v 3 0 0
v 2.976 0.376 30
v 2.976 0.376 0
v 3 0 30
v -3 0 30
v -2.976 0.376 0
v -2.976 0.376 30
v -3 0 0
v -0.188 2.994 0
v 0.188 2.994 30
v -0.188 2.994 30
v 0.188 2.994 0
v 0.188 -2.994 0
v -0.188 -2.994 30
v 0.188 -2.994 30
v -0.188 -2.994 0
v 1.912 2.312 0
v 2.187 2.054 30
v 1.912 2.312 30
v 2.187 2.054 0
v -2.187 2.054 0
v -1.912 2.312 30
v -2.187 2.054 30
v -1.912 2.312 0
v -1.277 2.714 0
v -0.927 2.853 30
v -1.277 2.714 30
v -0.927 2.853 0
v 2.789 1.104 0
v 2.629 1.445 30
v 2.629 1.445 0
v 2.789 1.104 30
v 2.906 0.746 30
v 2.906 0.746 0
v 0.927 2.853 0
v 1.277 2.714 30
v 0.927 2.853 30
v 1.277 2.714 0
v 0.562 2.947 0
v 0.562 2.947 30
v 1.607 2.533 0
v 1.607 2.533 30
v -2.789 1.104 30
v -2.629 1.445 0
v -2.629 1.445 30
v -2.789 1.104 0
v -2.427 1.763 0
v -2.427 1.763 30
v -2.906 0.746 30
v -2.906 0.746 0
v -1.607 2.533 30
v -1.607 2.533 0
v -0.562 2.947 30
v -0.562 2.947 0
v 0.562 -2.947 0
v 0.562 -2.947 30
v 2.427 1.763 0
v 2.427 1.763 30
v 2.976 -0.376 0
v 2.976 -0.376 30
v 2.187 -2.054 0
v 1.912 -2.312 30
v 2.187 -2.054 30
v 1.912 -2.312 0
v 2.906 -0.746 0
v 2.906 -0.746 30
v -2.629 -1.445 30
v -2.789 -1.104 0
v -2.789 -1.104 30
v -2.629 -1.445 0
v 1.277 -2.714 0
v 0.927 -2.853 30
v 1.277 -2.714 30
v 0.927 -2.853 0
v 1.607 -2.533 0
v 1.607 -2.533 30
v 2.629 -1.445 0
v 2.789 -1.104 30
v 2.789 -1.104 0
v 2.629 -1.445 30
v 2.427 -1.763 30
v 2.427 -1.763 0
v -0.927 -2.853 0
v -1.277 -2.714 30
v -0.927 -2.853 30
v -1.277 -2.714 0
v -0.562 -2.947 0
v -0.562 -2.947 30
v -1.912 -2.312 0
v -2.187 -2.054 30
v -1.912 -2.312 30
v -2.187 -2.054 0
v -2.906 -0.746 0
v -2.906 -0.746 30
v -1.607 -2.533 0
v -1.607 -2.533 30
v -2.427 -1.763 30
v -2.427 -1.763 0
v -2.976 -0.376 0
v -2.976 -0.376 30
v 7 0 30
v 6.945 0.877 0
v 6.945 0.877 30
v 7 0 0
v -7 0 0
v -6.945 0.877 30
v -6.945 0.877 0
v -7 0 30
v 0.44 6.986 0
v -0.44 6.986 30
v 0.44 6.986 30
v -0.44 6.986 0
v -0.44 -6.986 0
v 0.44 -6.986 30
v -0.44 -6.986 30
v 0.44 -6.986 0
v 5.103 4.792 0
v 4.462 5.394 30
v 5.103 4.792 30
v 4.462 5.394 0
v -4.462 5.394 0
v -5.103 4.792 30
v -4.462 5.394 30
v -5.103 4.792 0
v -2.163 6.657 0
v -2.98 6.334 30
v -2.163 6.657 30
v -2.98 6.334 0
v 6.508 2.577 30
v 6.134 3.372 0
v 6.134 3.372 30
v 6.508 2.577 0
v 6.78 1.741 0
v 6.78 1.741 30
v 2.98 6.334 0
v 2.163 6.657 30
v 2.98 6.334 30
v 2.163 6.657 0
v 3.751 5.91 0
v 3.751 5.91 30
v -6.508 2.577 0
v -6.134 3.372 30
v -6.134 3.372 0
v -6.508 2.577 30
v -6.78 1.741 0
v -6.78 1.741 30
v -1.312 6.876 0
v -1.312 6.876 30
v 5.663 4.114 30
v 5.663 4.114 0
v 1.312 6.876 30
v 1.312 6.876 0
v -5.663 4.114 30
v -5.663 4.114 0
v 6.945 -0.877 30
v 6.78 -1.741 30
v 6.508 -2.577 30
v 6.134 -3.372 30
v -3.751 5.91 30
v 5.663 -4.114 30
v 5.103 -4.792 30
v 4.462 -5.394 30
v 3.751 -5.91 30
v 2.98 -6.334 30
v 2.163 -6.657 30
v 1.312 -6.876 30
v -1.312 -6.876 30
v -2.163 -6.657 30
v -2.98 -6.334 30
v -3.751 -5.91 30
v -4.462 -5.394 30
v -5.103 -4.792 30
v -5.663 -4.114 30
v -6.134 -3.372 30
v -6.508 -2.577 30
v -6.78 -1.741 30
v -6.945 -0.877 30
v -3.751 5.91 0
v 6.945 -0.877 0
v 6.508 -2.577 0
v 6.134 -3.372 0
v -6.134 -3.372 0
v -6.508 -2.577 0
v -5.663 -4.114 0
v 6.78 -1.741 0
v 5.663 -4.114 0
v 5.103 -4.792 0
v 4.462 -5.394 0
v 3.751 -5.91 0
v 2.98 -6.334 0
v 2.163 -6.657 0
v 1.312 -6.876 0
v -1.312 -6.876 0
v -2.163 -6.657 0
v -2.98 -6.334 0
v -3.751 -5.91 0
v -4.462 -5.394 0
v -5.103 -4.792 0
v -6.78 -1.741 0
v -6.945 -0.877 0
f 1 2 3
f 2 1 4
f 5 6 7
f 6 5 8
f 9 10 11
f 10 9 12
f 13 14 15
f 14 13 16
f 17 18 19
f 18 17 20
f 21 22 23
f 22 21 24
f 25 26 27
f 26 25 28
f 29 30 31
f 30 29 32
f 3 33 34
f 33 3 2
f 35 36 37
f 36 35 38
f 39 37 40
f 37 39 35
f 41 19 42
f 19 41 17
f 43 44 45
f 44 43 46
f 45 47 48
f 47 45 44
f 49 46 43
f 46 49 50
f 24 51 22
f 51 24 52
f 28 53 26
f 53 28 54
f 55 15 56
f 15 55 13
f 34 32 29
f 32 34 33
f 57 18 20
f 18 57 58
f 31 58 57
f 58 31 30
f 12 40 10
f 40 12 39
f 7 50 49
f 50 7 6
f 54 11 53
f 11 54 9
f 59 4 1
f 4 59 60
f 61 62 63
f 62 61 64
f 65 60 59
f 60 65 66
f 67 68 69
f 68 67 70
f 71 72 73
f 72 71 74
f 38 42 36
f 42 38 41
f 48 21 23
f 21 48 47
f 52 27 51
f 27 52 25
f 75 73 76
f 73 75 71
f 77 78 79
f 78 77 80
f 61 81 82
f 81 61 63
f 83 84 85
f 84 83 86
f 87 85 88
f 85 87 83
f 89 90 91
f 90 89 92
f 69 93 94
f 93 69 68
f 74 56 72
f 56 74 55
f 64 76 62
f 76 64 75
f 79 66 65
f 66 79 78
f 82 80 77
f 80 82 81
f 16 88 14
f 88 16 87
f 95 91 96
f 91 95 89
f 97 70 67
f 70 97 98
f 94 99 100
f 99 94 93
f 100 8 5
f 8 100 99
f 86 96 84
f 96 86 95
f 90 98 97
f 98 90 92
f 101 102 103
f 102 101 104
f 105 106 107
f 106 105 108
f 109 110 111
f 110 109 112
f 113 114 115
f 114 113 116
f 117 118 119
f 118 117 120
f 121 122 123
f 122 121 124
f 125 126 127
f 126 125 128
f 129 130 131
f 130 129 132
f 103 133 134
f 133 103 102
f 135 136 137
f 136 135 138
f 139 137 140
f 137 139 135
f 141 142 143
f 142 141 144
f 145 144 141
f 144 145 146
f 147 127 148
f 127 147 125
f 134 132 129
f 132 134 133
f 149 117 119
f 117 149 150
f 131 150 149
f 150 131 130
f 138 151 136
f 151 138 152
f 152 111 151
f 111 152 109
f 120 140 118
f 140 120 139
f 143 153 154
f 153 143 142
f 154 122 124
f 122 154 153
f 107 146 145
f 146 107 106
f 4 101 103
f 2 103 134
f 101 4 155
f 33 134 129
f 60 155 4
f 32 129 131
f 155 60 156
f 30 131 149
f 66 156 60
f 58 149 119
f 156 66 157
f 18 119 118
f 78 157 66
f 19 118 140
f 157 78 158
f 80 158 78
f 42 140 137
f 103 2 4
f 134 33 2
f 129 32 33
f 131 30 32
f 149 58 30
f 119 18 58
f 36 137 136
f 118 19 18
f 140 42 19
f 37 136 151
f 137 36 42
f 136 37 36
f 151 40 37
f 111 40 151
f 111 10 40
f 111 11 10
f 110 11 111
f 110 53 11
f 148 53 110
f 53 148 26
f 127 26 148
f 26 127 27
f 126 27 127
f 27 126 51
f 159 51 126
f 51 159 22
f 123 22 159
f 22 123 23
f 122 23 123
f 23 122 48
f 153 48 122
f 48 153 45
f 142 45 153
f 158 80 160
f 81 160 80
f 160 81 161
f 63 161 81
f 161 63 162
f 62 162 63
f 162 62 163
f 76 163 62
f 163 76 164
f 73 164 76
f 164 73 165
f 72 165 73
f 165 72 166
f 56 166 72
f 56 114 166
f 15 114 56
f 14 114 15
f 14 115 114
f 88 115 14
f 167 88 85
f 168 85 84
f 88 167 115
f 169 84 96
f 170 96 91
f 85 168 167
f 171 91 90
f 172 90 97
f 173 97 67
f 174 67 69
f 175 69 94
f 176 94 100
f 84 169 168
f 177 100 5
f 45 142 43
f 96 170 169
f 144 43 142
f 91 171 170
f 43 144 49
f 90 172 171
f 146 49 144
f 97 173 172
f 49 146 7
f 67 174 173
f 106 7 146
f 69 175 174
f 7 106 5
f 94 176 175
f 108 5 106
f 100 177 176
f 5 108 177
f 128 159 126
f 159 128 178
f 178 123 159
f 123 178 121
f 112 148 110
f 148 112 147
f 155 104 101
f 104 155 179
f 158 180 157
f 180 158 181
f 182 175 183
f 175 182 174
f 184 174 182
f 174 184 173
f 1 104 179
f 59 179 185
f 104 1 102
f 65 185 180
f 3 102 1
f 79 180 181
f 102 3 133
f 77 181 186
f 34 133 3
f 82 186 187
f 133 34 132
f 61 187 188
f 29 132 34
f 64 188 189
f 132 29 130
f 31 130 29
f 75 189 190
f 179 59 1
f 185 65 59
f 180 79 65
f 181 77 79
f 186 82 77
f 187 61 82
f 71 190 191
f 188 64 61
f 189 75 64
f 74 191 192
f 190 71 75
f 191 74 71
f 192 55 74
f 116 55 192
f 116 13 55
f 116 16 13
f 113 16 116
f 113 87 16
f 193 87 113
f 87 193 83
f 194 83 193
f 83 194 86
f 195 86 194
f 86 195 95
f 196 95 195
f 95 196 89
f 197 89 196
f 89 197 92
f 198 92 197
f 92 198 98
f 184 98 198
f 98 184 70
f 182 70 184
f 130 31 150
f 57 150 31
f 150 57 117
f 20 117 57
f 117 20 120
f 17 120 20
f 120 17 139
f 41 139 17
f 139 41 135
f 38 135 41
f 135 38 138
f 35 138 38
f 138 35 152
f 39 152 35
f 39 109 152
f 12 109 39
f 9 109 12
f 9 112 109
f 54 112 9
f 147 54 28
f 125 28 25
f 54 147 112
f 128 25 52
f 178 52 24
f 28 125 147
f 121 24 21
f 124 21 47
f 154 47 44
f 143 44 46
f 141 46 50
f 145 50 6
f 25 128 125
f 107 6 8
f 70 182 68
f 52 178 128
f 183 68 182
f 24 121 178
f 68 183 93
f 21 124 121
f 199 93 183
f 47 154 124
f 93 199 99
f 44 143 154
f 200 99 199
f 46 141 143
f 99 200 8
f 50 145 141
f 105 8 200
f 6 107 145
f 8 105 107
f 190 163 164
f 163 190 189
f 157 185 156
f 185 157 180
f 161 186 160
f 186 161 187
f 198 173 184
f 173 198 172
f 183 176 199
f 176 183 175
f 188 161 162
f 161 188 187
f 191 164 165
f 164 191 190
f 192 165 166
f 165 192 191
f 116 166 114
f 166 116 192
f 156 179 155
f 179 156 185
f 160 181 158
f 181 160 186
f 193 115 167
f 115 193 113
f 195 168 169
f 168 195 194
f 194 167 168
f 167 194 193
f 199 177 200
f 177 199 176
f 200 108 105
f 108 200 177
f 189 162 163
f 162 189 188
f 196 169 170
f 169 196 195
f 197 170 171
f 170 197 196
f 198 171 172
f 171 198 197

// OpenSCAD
$fn = 50;


difference() {
	union() {
		*color(alpha = 1.0000000000, c = "gray") {
			translate(v = [0, 7, 0]) {
				linear_extrude(height = 1) {
					text(font = "Arial:style=Bold", halign = "center", size = 4.5000000000, text = "COMMENT plate main", valign = "center");
				}
			}
		}
		*color(alpha = 1.0000000000, c = "gray") {
			translate(v = [0, 14, 0]) {
				linear_extrude(height = 1) {
					text(font = "Arial:style=Bold", halign = "center", size = 4.5000000000, text = "COMMENT description oobb_plate_shape_p_type_30_depth_1_width_1_height_30_thickness_true_both_holes", valign = "center");
				}
			}
		}
		cylinder(h = 30, r = 7.0000000000);
	}
	union() {
		*color(alpha = 1.0000000000, c = "gray") {
			translate(v = [0, 7, 0]) {
				linear_extrude(height = 1) {
					text(font = "Arial:style=Bold", halign = "center", size = 4.5000000000, text = "COMMENT holes main", valign = "center");
				}
			}
		}
		*color(alpha = 1.0000000000, c = "gray") {
			translate(v = [0, 14, 0]) {
				linear_extrude(height = 1) {
					text(font = "Arial:style=Bold", halign = "center", size = 4.5000000000, text = "COMMENT description oobb_holes_shape_n_type_1_width_1_height_30_thickness_true_both_holes", valign = "center");
				}
			}
		}
		translate(v = [0, 0, -50]) {
			cylinder(h = 100, r = 3.0000000000);
		}
		translate(v = [0, 0, -50]) {
			cylinder(h = 100, r = 1.5000000000);
		}
	}
}
